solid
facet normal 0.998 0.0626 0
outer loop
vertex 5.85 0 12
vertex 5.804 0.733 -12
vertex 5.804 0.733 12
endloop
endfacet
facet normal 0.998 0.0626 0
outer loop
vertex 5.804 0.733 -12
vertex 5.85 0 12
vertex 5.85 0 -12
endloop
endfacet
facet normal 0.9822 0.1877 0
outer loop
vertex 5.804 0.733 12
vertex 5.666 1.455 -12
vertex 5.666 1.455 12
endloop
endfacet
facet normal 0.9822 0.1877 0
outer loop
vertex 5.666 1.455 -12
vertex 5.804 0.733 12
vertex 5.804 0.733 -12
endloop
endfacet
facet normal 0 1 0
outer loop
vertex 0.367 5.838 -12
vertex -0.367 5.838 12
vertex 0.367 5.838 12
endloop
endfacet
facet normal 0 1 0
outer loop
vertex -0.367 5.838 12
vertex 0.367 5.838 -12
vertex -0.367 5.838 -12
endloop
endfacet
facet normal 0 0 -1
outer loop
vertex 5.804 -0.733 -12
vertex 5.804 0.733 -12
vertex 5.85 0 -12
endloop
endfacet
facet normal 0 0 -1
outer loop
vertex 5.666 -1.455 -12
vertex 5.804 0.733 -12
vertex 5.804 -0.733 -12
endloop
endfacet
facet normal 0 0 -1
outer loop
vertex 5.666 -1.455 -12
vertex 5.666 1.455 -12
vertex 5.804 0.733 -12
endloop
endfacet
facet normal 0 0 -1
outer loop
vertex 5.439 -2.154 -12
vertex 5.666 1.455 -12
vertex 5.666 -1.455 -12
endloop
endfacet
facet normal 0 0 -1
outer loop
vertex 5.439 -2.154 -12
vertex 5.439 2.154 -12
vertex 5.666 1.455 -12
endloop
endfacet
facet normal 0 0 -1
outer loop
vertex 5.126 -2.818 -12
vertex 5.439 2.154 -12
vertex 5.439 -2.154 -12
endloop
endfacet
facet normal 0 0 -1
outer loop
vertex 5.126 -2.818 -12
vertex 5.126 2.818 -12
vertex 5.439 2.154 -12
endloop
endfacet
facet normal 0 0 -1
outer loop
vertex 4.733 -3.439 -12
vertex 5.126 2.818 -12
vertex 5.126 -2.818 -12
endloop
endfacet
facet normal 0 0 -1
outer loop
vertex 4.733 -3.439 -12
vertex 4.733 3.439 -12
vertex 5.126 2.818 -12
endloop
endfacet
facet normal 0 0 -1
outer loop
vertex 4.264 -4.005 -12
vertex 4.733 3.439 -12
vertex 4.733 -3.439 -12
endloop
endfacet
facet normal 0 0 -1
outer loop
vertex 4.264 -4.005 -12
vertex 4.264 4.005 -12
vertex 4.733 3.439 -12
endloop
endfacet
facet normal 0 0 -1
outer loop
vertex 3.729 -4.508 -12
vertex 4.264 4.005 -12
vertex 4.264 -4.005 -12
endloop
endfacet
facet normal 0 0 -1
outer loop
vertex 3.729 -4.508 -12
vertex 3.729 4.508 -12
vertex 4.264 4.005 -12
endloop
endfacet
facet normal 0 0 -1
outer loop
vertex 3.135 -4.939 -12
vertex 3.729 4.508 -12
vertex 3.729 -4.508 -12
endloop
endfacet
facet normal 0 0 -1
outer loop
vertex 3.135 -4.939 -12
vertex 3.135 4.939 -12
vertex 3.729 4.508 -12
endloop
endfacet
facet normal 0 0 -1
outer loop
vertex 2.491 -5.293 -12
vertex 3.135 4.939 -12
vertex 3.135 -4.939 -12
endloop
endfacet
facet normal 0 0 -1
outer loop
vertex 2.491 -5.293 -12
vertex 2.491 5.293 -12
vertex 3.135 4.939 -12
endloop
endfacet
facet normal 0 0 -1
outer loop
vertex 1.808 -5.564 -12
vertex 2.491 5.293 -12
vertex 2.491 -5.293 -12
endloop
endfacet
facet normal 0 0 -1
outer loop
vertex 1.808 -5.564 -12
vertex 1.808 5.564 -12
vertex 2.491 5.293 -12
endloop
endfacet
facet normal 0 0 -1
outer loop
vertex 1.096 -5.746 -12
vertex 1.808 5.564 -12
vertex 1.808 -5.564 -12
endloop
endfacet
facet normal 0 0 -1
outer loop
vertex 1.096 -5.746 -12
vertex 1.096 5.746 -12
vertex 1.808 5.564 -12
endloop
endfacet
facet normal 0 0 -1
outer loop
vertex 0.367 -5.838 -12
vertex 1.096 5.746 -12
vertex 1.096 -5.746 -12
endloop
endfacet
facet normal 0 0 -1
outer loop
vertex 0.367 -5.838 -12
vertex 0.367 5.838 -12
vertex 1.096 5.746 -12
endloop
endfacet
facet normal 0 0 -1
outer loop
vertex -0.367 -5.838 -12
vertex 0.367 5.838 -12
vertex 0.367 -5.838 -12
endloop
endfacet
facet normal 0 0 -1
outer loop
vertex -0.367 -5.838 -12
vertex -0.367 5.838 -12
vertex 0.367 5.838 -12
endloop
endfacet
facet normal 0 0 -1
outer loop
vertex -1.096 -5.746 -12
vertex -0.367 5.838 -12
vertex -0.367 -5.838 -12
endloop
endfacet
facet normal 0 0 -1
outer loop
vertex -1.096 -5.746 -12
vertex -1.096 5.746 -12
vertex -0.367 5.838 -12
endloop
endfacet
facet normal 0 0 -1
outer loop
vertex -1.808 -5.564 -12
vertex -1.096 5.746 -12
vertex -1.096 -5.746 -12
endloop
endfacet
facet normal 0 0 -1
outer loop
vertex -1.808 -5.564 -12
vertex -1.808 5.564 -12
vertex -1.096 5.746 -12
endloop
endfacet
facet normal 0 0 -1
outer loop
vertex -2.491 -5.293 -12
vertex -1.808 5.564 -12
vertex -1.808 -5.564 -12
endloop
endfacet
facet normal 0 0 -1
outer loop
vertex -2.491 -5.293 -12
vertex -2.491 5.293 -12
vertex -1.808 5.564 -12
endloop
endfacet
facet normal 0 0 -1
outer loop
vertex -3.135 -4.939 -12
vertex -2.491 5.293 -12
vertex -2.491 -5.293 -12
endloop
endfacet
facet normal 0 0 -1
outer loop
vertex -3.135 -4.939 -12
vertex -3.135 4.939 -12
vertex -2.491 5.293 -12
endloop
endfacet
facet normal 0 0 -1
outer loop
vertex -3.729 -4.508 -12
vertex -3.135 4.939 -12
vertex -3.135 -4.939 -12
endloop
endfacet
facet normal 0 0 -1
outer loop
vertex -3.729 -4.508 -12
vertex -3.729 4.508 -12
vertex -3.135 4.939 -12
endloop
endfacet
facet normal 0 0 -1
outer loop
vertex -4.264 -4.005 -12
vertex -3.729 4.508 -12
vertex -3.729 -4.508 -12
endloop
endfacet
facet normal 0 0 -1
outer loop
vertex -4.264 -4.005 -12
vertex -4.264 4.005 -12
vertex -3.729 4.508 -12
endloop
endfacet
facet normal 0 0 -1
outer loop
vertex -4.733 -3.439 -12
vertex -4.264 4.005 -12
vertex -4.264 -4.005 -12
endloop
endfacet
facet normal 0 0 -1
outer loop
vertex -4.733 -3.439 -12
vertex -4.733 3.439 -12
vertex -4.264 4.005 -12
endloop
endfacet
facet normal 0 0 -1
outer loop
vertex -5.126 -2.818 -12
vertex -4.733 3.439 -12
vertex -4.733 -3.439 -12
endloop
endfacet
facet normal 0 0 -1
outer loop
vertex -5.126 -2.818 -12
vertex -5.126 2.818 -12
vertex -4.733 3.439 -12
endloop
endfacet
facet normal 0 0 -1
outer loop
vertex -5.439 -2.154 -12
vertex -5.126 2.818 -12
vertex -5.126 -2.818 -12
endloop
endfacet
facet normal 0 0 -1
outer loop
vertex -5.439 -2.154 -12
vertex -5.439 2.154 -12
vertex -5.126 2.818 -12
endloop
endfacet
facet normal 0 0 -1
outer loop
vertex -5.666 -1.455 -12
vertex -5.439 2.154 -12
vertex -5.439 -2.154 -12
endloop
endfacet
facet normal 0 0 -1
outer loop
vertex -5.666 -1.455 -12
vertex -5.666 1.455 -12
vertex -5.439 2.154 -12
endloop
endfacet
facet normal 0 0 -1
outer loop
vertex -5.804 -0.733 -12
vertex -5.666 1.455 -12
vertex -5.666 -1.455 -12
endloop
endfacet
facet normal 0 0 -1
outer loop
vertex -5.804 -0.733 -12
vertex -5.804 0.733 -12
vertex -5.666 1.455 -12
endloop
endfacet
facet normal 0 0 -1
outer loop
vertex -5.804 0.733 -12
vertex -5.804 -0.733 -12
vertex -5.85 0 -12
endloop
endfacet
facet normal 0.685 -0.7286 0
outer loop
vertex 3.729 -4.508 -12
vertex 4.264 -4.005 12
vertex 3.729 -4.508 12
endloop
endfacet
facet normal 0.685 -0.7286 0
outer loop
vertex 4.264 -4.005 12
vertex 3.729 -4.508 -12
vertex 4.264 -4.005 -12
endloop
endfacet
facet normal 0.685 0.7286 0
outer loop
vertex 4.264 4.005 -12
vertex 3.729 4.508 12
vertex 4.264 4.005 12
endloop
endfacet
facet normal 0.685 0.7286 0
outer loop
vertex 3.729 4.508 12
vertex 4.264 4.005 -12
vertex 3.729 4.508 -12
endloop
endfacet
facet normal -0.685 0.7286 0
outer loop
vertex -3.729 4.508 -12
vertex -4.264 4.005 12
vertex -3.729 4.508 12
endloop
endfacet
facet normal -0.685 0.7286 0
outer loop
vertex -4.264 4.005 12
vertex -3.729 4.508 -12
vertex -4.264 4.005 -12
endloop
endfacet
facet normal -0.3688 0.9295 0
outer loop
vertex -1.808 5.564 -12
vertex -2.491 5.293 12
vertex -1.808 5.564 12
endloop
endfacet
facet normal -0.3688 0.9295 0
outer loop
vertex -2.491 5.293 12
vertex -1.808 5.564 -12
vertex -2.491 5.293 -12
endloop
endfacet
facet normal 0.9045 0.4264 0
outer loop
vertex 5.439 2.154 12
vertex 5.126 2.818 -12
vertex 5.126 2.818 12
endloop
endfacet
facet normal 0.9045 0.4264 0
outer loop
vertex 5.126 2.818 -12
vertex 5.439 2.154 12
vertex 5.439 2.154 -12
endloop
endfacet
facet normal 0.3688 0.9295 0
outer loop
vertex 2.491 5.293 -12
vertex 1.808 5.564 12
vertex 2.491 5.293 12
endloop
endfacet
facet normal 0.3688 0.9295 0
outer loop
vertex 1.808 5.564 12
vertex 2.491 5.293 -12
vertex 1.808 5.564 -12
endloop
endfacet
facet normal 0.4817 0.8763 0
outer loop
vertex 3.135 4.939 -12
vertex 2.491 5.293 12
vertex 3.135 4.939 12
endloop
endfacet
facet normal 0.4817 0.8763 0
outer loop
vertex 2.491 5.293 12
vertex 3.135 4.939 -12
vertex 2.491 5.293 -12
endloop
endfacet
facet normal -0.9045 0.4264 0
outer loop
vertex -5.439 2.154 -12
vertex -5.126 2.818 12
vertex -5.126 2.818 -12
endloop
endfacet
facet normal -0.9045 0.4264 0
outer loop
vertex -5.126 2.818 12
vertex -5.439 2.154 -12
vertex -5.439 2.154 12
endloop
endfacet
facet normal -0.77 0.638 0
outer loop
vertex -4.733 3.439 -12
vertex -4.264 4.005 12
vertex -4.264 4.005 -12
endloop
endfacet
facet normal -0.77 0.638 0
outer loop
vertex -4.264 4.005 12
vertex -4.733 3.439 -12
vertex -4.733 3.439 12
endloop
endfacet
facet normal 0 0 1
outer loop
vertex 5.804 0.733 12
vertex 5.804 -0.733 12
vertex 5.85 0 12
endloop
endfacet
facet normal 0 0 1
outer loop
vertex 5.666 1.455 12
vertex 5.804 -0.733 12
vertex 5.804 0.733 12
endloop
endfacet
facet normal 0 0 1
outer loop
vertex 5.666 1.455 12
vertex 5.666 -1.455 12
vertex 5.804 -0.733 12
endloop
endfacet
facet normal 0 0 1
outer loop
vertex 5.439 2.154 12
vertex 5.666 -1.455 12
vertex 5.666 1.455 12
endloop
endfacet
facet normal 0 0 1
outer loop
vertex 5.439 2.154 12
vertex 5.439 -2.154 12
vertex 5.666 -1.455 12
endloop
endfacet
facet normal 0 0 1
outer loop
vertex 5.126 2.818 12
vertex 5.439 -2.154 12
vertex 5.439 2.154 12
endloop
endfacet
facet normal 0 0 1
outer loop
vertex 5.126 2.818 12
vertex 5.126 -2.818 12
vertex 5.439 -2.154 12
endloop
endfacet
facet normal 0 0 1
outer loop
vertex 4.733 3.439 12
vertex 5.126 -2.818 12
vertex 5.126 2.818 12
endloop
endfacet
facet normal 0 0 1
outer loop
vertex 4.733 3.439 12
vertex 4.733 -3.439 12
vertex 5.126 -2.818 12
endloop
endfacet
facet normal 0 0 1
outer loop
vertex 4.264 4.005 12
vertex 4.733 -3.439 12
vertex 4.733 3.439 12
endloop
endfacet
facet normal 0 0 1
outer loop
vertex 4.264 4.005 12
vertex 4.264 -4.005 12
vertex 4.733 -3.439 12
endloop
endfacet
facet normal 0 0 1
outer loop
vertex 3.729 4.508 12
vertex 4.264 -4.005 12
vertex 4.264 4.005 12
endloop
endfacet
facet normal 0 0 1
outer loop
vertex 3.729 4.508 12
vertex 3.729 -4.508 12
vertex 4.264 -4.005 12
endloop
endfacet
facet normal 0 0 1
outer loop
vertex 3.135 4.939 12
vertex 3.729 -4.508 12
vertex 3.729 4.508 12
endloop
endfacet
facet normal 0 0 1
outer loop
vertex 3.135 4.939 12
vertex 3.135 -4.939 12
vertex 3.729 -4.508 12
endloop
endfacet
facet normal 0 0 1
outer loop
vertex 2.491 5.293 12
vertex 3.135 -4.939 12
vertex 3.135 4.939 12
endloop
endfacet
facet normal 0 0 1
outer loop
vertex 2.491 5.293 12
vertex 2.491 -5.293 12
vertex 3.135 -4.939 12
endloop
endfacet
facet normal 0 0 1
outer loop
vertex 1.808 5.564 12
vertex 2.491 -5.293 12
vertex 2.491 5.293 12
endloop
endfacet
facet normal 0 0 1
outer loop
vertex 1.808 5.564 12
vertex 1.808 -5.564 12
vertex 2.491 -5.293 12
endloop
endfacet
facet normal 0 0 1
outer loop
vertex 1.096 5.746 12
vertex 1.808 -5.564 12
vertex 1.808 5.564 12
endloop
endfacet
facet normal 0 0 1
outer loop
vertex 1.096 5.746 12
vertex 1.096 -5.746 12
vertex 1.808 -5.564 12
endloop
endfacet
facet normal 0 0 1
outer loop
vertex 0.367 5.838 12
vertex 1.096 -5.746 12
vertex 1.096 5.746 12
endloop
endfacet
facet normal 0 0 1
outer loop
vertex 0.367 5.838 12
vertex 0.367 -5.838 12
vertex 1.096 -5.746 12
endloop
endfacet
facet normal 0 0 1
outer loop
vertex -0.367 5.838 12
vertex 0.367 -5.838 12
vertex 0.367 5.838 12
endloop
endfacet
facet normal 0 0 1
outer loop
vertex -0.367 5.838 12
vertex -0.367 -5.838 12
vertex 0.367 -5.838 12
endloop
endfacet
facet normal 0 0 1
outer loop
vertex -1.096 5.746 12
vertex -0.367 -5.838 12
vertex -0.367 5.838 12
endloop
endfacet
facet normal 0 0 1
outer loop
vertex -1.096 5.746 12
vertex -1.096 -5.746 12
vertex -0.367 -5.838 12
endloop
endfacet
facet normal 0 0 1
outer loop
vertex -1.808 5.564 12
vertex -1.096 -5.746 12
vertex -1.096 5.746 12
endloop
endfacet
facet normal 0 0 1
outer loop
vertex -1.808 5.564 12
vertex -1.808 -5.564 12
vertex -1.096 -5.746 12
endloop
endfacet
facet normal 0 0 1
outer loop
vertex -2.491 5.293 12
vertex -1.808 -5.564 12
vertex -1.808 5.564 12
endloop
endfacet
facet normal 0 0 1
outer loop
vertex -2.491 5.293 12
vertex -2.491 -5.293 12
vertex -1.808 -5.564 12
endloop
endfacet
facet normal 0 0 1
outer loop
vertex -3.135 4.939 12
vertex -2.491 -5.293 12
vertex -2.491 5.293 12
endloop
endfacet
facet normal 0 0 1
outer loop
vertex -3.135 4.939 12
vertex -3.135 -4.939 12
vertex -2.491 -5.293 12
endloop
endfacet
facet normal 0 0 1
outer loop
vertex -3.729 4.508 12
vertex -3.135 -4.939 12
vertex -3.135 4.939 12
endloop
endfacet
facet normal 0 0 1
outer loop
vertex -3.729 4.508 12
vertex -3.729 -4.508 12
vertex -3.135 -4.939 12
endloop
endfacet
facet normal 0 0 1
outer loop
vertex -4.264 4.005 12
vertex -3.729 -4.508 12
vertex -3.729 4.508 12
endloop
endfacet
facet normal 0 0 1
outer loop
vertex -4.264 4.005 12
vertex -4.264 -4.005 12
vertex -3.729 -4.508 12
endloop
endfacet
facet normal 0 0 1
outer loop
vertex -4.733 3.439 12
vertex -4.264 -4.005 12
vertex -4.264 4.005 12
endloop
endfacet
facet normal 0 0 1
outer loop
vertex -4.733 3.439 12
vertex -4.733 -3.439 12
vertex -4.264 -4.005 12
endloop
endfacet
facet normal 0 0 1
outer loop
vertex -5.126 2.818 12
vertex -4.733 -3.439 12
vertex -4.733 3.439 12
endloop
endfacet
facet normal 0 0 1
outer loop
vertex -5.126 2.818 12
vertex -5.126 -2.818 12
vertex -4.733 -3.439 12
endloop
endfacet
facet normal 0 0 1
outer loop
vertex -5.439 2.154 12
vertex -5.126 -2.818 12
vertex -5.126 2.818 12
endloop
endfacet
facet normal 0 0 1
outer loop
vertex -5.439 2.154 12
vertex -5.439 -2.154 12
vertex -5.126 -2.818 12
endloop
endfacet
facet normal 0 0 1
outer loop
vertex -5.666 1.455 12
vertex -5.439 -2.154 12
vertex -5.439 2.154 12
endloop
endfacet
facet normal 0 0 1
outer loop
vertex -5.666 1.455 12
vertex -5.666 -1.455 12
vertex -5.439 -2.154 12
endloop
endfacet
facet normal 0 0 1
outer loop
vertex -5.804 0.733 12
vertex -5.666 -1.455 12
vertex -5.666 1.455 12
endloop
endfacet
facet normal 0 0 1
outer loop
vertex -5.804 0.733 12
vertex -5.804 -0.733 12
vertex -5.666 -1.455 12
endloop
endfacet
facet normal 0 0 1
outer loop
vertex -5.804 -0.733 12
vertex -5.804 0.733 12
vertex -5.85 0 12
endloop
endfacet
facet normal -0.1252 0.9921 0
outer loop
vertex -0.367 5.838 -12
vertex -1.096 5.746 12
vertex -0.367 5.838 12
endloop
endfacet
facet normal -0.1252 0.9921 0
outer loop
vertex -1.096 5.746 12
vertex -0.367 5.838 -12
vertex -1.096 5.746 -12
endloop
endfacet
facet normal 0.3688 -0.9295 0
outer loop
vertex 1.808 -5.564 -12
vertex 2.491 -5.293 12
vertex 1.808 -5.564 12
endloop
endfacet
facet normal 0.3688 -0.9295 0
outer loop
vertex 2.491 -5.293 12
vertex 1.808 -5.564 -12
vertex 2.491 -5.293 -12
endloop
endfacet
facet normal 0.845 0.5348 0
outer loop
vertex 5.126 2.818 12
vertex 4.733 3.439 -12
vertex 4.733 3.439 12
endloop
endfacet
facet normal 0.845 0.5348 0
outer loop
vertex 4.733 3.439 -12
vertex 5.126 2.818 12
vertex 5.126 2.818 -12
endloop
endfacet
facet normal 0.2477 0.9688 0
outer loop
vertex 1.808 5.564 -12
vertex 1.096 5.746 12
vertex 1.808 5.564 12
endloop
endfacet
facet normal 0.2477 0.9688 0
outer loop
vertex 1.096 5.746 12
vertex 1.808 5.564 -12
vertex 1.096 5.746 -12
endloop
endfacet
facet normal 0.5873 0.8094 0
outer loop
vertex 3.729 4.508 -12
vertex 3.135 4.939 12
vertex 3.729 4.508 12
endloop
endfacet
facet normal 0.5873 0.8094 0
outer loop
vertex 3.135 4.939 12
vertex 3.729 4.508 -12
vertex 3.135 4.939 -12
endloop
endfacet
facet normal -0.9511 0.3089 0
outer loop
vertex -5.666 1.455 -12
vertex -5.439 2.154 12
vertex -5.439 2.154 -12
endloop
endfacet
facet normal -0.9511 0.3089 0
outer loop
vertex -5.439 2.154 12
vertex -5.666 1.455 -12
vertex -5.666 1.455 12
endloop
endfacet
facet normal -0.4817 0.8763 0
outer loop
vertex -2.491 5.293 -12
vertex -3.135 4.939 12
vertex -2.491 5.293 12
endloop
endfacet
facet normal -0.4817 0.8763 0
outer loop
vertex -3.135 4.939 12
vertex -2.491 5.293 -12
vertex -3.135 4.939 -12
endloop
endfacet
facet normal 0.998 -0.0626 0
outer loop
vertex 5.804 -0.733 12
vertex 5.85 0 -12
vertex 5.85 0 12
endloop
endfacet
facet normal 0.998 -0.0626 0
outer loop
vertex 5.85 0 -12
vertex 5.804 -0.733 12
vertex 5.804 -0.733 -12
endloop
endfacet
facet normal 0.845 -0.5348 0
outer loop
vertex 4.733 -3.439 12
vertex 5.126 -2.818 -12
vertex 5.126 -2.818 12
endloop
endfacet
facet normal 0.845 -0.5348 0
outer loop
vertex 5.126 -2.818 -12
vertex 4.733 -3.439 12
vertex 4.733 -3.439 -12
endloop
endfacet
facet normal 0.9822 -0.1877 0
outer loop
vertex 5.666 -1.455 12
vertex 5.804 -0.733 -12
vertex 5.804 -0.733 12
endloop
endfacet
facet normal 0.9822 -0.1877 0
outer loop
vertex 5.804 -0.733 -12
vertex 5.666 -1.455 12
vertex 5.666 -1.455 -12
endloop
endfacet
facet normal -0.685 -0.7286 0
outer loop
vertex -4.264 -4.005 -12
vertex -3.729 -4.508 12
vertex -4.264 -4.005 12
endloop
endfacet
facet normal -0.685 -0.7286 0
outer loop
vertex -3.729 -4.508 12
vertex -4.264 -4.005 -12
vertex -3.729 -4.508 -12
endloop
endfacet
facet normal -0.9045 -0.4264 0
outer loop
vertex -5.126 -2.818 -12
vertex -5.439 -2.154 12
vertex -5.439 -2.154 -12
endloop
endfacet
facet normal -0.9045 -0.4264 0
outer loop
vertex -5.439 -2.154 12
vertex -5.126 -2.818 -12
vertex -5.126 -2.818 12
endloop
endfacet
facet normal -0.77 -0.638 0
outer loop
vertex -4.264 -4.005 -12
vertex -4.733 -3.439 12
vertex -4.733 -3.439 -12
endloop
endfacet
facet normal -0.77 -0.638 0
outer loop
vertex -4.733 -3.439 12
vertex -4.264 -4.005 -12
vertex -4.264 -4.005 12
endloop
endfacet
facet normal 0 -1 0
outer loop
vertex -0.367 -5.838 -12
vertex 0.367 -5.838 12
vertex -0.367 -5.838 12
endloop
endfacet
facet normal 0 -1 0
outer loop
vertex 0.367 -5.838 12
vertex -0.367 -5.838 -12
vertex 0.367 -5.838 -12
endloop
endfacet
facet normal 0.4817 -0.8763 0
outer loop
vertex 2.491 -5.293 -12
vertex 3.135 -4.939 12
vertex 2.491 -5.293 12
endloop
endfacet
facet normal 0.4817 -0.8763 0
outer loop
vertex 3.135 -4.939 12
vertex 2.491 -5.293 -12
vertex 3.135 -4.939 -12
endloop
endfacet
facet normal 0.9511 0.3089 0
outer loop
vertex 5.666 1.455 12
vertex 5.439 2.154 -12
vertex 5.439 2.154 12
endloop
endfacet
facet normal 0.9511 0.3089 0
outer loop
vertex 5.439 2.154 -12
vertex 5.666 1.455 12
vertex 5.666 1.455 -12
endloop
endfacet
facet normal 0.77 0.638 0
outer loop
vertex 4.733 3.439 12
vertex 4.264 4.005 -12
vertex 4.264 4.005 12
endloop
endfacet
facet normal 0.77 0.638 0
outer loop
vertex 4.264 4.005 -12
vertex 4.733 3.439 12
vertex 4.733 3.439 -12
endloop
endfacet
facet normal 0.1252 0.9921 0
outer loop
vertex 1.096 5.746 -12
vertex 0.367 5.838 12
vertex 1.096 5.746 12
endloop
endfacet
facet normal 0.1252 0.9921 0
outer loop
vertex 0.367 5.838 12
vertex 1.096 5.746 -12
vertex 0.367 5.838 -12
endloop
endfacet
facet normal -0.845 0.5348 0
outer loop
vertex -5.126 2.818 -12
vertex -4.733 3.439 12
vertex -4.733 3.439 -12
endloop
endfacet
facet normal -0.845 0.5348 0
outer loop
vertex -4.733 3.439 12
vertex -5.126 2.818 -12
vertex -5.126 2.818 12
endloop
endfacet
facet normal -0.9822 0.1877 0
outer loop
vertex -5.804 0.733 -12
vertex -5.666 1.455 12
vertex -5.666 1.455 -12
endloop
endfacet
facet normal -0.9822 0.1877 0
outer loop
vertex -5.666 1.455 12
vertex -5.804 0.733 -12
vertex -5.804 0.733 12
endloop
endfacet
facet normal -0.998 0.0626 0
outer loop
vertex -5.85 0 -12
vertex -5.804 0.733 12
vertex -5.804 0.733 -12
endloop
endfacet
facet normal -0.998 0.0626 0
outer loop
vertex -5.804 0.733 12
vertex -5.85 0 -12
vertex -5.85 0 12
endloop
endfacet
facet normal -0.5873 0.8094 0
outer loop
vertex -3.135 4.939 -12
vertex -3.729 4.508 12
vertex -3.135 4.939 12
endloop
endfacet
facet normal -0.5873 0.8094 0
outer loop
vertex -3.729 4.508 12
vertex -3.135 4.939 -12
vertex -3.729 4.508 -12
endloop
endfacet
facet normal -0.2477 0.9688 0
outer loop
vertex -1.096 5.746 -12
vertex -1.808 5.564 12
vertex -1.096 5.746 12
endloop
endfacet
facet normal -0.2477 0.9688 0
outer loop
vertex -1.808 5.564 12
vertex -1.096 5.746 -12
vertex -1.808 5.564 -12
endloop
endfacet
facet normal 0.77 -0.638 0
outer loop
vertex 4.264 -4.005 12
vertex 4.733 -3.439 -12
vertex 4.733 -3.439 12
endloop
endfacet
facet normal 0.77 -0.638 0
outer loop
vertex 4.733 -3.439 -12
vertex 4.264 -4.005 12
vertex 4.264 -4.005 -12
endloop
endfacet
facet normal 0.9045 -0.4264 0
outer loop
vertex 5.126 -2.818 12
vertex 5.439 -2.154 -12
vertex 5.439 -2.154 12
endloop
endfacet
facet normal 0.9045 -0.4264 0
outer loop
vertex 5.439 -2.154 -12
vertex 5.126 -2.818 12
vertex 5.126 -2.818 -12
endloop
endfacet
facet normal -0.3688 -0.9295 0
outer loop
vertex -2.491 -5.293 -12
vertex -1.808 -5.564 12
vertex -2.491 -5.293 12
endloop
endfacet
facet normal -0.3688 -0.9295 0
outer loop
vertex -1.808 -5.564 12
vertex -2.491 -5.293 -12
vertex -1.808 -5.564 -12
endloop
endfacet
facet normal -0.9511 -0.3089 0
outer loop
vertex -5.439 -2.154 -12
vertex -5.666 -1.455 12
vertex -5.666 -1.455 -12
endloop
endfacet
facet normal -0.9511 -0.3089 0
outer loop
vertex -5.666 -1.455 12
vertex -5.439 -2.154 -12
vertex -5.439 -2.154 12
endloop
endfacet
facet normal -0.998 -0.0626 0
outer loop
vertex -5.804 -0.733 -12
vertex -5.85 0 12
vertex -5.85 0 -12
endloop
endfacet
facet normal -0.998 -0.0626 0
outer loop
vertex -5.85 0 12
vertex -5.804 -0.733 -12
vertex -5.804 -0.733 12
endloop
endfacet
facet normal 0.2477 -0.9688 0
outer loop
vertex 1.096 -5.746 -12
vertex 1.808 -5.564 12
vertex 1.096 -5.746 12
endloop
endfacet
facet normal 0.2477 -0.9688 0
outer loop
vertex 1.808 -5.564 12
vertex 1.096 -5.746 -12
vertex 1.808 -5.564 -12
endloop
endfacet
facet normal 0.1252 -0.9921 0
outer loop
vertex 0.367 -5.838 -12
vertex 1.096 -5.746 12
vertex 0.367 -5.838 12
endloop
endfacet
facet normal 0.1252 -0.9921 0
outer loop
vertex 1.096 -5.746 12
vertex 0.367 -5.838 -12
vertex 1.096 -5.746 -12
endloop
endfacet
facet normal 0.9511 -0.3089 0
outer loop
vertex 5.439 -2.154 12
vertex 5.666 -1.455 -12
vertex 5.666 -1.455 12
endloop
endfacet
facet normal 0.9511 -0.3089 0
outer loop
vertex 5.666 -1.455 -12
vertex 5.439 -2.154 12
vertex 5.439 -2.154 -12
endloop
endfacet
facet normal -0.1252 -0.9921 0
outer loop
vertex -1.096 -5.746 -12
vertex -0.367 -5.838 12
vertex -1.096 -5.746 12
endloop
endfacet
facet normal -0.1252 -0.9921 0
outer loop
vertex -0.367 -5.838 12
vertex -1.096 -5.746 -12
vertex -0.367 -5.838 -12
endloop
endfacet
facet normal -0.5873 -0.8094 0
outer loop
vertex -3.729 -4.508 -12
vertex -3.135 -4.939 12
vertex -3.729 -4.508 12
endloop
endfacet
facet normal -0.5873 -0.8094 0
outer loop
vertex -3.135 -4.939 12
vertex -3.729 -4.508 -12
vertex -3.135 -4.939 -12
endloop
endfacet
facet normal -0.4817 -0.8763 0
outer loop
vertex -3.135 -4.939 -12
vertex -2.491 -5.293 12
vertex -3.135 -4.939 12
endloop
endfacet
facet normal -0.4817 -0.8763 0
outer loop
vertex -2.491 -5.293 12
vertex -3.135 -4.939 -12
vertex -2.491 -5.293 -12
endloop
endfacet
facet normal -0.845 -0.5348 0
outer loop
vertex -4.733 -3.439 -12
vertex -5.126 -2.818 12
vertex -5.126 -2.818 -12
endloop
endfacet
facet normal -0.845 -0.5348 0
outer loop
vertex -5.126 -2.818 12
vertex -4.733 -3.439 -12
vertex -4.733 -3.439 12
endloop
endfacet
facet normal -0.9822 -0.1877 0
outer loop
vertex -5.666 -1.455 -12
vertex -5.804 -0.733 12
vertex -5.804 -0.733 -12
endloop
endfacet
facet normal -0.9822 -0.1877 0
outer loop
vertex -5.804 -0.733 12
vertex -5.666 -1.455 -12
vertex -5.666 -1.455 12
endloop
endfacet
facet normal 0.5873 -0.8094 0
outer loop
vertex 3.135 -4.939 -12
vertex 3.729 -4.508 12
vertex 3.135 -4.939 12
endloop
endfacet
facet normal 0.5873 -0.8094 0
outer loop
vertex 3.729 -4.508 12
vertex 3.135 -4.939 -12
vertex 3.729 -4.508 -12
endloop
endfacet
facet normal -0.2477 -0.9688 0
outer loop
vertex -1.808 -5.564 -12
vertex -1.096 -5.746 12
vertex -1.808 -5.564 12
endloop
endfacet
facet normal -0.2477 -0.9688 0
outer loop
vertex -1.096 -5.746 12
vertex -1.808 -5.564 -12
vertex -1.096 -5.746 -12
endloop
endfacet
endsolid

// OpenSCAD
$fn = 50;


difference() {
	union() {
		translate(v = [0, 0, -12.0000000000]) {
			cylinder(h = 24, r = 5.8500000000);
		}
	}
	union() {
		translate(v = [0, 0, -100.0000000000]) {
			cylinder(h = 200, r = 0);
		}
	}
}
